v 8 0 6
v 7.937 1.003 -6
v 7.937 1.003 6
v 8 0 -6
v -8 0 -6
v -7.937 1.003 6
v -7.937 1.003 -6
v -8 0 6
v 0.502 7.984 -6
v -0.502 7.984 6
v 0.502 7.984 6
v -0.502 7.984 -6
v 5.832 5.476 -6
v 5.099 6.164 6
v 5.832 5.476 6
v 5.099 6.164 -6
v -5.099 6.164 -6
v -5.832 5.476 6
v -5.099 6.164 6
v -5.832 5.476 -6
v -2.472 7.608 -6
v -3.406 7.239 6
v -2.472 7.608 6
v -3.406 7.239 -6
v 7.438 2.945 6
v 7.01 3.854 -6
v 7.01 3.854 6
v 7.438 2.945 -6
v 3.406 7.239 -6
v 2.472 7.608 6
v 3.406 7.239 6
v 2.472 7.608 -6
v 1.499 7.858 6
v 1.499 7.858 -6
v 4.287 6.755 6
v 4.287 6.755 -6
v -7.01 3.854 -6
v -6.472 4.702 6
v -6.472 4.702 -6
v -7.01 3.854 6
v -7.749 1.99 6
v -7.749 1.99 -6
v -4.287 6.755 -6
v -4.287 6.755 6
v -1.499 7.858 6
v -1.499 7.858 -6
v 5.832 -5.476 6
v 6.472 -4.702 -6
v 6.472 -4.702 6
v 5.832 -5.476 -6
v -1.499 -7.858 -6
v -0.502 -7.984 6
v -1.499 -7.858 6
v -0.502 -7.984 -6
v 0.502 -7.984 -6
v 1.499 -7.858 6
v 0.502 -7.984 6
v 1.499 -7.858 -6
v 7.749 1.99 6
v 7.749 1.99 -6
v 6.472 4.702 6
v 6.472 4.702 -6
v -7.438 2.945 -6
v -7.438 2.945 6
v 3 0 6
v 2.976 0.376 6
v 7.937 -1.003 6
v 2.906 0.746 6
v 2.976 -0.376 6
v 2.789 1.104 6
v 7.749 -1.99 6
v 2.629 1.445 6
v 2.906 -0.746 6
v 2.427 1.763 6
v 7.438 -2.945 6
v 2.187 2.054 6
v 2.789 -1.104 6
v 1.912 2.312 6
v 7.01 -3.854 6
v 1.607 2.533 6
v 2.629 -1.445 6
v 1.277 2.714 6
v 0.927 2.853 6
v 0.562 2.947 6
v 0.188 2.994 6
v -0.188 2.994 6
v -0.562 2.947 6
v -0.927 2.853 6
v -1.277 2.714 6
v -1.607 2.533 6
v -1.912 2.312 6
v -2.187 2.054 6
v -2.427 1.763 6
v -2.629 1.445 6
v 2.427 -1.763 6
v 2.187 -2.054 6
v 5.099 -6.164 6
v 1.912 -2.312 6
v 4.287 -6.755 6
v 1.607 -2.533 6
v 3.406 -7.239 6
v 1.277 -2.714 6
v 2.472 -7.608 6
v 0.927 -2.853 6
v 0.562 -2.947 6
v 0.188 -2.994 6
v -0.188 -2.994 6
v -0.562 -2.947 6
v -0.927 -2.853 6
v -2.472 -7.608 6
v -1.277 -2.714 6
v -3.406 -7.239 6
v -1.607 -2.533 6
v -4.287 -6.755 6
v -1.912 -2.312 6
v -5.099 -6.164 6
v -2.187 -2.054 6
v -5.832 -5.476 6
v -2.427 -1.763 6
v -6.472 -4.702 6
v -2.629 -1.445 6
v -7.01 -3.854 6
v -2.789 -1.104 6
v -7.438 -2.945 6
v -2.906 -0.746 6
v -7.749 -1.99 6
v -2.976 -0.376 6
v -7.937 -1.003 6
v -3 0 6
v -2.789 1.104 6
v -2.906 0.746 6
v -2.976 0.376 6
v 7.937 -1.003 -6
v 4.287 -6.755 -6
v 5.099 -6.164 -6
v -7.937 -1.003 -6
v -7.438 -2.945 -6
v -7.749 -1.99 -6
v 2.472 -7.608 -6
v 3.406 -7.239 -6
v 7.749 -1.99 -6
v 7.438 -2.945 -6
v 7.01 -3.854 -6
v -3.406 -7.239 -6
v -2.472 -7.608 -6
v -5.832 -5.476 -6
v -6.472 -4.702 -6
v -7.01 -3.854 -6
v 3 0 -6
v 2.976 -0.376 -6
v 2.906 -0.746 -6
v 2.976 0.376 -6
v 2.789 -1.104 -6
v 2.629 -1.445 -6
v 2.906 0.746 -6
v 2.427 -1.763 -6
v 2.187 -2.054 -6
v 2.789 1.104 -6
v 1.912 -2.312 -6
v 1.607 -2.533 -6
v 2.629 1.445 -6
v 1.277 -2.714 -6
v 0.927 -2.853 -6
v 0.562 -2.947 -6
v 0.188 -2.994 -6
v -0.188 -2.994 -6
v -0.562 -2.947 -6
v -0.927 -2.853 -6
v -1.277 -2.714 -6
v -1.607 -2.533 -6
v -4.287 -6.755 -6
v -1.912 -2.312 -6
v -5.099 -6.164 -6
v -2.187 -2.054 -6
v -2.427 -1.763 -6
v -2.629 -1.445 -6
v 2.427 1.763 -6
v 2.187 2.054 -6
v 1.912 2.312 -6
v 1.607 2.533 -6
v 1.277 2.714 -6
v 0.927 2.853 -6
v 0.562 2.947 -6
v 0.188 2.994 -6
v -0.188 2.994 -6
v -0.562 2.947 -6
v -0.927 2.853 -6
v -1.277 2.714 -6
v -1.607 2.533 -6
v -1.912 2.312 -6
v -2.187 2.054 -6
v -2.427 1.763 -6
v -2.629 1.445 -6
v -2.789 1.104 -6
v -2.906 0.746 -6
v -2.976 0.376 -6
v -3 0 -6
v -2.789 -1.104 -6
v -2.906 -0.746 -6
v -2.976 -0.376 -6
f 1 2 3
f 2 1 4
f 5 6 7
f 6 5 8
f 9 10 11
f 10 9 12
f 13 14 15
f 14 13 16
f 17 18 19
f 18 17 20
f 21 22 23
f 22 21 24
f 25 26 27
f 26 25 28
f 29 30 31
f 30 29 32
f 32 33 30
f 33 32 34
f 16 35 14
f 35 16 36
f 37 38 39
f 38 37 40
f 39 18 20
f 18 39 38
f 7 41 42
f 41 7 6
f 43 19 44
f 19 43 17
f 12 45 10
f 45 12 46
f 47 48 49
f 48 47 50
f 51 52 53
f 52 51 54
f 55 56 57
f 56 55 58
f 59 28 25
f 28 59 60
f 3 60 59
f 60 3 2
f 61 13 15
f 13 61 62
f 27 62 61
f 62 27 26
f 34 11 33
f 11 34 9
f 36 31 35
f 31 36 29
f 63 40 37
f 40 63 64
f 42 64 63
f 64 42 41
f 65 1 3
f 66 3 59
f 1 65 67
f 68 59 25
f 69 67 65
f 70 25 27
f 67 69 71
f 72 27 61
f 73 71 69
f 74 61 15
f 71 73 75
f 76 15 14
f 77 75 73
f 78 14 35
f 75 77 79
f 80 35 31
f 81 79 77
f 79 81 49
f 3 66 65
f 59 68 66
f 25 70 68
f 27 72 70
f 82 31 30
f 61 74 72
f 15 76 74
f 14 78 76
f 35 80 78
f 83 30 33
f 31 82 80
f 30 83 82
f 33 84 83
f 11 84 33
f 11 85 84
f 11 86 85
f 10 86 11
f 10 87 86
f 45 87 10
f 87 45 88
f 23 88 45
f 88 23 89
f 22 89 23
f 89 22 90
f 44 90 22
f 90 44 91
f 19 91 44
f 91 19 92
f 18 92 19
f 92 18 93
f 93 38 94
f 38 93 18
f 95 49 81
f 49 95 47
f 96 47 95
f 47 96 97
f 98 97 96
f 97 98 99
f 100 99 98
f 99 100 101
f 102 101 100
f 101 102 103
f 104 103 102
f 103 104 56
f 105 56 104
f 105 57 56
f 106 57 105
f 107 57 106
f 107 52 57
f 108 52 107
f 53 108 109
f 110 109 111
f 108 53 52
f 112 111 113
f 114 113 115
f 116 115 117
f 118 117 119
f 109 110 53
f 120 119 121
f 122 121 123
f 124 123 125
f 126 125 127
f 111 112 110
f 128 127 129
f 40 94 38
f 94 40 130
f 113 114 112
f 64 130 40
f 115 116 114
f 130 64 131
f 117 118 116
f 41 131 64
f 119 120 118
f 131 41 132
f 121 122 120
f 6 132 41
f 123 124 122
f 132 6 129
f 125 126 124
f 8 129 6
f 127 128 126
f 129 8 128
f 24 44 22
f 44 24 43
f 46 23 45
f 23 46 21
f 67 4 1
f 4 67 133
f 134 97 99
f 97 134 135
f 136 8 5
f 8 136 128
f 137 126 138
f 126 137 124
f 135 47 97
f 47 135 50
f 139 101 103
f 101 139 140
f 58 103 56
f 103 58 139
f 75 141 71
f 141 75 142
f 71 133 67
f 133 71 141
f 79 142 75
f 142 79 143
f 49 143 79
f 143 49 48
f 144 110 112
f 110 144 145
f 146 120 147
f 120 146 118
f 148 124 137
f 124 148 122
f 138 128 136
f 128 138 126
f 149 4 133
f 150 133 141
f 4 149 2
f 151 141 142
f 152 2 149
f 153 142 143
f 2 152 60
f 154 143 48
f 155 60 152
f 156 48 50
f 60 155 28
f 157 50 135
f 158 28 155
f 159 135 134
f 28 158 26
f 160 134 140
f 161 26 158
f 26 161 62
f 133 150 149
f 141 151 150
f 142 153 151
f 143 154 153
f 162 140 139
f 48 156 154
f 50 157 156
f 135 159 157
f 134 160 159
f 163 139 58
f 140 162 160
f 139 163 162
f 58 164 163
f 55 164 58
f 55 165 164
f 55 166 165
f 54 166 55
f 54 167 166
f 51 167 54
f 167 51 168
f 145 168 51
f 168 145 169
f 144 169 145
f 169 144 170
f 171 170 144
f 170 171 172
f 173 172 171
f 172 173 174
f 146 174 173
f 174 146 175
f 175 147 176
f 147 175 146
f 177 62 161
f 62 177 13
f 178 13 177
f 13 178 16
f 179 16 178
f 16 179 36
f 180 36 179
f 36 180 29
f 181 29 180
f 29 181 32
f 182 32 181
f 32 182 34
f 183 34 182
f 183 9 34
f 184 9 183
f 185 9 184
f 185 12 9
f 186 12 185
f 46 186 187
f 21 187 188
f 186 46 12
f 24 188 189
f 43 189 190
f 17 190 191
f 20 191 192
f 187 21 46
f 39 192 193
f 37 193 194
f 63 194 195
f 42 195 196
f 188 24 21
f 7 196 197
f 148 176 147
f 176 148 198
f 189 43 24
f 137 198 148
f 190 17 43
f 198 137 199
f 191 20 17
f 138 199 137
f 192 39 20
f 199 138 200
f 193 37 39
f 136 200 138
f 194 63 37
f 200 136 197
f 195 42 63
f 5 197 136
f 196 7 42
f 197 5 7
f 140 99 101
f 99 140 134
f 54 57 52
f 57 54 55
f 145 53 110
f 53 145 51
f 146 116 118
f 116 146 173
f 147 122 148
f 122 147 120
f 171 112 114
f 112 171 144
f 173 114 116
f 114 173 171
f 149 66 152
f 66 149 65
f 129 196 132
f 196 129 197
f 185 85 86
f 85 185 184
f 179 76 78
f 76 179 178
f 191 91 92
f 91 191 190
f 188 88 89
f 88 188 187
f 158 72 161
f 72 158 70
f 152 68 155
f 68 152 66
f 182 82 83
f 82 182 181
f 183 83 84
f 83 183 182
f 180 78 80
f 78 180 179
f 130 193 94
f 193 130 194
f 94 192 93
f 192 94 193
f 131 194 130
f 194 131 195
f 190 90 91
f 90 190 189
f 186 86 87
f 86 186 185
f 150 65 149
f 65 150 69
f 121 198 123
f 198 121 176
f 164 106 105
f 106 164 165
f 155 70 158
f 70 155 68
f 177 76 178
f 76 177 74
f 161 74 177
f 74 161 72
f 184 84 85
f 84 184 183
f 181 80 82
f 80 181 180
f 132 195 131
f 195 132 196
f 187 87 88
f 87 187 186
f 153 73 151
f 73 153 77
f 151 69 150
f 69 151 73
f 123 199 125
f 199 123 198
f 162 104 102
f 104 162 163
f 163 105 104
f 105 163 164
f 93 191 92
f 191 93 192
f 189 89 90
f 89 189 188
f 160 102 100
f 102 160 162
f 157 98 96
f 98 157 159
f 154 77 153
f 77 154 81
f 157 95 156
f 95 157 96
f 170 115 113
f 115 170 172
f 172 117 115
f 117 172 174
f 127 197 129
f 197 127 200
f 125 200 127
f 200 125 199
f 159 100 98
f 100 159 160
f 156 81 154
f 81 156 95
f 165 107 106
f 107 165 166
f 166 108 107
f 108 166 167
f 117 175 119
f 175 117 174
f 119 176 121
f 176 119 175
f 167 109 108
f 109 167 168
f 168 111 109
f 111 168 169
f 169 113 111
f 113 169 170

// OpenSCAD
$fn = 50;


difference() {
	union() {
		translate(v = [0, 0, -6.0000000000]) {
			cylinder(h = 12, r = 8.0000000000);
		}
	}
	union() {
		translate(v = [0, 0, -100.0000000000]) {
			cylinder(h = 200, r = 3.0000000000);
		}
	}
}
